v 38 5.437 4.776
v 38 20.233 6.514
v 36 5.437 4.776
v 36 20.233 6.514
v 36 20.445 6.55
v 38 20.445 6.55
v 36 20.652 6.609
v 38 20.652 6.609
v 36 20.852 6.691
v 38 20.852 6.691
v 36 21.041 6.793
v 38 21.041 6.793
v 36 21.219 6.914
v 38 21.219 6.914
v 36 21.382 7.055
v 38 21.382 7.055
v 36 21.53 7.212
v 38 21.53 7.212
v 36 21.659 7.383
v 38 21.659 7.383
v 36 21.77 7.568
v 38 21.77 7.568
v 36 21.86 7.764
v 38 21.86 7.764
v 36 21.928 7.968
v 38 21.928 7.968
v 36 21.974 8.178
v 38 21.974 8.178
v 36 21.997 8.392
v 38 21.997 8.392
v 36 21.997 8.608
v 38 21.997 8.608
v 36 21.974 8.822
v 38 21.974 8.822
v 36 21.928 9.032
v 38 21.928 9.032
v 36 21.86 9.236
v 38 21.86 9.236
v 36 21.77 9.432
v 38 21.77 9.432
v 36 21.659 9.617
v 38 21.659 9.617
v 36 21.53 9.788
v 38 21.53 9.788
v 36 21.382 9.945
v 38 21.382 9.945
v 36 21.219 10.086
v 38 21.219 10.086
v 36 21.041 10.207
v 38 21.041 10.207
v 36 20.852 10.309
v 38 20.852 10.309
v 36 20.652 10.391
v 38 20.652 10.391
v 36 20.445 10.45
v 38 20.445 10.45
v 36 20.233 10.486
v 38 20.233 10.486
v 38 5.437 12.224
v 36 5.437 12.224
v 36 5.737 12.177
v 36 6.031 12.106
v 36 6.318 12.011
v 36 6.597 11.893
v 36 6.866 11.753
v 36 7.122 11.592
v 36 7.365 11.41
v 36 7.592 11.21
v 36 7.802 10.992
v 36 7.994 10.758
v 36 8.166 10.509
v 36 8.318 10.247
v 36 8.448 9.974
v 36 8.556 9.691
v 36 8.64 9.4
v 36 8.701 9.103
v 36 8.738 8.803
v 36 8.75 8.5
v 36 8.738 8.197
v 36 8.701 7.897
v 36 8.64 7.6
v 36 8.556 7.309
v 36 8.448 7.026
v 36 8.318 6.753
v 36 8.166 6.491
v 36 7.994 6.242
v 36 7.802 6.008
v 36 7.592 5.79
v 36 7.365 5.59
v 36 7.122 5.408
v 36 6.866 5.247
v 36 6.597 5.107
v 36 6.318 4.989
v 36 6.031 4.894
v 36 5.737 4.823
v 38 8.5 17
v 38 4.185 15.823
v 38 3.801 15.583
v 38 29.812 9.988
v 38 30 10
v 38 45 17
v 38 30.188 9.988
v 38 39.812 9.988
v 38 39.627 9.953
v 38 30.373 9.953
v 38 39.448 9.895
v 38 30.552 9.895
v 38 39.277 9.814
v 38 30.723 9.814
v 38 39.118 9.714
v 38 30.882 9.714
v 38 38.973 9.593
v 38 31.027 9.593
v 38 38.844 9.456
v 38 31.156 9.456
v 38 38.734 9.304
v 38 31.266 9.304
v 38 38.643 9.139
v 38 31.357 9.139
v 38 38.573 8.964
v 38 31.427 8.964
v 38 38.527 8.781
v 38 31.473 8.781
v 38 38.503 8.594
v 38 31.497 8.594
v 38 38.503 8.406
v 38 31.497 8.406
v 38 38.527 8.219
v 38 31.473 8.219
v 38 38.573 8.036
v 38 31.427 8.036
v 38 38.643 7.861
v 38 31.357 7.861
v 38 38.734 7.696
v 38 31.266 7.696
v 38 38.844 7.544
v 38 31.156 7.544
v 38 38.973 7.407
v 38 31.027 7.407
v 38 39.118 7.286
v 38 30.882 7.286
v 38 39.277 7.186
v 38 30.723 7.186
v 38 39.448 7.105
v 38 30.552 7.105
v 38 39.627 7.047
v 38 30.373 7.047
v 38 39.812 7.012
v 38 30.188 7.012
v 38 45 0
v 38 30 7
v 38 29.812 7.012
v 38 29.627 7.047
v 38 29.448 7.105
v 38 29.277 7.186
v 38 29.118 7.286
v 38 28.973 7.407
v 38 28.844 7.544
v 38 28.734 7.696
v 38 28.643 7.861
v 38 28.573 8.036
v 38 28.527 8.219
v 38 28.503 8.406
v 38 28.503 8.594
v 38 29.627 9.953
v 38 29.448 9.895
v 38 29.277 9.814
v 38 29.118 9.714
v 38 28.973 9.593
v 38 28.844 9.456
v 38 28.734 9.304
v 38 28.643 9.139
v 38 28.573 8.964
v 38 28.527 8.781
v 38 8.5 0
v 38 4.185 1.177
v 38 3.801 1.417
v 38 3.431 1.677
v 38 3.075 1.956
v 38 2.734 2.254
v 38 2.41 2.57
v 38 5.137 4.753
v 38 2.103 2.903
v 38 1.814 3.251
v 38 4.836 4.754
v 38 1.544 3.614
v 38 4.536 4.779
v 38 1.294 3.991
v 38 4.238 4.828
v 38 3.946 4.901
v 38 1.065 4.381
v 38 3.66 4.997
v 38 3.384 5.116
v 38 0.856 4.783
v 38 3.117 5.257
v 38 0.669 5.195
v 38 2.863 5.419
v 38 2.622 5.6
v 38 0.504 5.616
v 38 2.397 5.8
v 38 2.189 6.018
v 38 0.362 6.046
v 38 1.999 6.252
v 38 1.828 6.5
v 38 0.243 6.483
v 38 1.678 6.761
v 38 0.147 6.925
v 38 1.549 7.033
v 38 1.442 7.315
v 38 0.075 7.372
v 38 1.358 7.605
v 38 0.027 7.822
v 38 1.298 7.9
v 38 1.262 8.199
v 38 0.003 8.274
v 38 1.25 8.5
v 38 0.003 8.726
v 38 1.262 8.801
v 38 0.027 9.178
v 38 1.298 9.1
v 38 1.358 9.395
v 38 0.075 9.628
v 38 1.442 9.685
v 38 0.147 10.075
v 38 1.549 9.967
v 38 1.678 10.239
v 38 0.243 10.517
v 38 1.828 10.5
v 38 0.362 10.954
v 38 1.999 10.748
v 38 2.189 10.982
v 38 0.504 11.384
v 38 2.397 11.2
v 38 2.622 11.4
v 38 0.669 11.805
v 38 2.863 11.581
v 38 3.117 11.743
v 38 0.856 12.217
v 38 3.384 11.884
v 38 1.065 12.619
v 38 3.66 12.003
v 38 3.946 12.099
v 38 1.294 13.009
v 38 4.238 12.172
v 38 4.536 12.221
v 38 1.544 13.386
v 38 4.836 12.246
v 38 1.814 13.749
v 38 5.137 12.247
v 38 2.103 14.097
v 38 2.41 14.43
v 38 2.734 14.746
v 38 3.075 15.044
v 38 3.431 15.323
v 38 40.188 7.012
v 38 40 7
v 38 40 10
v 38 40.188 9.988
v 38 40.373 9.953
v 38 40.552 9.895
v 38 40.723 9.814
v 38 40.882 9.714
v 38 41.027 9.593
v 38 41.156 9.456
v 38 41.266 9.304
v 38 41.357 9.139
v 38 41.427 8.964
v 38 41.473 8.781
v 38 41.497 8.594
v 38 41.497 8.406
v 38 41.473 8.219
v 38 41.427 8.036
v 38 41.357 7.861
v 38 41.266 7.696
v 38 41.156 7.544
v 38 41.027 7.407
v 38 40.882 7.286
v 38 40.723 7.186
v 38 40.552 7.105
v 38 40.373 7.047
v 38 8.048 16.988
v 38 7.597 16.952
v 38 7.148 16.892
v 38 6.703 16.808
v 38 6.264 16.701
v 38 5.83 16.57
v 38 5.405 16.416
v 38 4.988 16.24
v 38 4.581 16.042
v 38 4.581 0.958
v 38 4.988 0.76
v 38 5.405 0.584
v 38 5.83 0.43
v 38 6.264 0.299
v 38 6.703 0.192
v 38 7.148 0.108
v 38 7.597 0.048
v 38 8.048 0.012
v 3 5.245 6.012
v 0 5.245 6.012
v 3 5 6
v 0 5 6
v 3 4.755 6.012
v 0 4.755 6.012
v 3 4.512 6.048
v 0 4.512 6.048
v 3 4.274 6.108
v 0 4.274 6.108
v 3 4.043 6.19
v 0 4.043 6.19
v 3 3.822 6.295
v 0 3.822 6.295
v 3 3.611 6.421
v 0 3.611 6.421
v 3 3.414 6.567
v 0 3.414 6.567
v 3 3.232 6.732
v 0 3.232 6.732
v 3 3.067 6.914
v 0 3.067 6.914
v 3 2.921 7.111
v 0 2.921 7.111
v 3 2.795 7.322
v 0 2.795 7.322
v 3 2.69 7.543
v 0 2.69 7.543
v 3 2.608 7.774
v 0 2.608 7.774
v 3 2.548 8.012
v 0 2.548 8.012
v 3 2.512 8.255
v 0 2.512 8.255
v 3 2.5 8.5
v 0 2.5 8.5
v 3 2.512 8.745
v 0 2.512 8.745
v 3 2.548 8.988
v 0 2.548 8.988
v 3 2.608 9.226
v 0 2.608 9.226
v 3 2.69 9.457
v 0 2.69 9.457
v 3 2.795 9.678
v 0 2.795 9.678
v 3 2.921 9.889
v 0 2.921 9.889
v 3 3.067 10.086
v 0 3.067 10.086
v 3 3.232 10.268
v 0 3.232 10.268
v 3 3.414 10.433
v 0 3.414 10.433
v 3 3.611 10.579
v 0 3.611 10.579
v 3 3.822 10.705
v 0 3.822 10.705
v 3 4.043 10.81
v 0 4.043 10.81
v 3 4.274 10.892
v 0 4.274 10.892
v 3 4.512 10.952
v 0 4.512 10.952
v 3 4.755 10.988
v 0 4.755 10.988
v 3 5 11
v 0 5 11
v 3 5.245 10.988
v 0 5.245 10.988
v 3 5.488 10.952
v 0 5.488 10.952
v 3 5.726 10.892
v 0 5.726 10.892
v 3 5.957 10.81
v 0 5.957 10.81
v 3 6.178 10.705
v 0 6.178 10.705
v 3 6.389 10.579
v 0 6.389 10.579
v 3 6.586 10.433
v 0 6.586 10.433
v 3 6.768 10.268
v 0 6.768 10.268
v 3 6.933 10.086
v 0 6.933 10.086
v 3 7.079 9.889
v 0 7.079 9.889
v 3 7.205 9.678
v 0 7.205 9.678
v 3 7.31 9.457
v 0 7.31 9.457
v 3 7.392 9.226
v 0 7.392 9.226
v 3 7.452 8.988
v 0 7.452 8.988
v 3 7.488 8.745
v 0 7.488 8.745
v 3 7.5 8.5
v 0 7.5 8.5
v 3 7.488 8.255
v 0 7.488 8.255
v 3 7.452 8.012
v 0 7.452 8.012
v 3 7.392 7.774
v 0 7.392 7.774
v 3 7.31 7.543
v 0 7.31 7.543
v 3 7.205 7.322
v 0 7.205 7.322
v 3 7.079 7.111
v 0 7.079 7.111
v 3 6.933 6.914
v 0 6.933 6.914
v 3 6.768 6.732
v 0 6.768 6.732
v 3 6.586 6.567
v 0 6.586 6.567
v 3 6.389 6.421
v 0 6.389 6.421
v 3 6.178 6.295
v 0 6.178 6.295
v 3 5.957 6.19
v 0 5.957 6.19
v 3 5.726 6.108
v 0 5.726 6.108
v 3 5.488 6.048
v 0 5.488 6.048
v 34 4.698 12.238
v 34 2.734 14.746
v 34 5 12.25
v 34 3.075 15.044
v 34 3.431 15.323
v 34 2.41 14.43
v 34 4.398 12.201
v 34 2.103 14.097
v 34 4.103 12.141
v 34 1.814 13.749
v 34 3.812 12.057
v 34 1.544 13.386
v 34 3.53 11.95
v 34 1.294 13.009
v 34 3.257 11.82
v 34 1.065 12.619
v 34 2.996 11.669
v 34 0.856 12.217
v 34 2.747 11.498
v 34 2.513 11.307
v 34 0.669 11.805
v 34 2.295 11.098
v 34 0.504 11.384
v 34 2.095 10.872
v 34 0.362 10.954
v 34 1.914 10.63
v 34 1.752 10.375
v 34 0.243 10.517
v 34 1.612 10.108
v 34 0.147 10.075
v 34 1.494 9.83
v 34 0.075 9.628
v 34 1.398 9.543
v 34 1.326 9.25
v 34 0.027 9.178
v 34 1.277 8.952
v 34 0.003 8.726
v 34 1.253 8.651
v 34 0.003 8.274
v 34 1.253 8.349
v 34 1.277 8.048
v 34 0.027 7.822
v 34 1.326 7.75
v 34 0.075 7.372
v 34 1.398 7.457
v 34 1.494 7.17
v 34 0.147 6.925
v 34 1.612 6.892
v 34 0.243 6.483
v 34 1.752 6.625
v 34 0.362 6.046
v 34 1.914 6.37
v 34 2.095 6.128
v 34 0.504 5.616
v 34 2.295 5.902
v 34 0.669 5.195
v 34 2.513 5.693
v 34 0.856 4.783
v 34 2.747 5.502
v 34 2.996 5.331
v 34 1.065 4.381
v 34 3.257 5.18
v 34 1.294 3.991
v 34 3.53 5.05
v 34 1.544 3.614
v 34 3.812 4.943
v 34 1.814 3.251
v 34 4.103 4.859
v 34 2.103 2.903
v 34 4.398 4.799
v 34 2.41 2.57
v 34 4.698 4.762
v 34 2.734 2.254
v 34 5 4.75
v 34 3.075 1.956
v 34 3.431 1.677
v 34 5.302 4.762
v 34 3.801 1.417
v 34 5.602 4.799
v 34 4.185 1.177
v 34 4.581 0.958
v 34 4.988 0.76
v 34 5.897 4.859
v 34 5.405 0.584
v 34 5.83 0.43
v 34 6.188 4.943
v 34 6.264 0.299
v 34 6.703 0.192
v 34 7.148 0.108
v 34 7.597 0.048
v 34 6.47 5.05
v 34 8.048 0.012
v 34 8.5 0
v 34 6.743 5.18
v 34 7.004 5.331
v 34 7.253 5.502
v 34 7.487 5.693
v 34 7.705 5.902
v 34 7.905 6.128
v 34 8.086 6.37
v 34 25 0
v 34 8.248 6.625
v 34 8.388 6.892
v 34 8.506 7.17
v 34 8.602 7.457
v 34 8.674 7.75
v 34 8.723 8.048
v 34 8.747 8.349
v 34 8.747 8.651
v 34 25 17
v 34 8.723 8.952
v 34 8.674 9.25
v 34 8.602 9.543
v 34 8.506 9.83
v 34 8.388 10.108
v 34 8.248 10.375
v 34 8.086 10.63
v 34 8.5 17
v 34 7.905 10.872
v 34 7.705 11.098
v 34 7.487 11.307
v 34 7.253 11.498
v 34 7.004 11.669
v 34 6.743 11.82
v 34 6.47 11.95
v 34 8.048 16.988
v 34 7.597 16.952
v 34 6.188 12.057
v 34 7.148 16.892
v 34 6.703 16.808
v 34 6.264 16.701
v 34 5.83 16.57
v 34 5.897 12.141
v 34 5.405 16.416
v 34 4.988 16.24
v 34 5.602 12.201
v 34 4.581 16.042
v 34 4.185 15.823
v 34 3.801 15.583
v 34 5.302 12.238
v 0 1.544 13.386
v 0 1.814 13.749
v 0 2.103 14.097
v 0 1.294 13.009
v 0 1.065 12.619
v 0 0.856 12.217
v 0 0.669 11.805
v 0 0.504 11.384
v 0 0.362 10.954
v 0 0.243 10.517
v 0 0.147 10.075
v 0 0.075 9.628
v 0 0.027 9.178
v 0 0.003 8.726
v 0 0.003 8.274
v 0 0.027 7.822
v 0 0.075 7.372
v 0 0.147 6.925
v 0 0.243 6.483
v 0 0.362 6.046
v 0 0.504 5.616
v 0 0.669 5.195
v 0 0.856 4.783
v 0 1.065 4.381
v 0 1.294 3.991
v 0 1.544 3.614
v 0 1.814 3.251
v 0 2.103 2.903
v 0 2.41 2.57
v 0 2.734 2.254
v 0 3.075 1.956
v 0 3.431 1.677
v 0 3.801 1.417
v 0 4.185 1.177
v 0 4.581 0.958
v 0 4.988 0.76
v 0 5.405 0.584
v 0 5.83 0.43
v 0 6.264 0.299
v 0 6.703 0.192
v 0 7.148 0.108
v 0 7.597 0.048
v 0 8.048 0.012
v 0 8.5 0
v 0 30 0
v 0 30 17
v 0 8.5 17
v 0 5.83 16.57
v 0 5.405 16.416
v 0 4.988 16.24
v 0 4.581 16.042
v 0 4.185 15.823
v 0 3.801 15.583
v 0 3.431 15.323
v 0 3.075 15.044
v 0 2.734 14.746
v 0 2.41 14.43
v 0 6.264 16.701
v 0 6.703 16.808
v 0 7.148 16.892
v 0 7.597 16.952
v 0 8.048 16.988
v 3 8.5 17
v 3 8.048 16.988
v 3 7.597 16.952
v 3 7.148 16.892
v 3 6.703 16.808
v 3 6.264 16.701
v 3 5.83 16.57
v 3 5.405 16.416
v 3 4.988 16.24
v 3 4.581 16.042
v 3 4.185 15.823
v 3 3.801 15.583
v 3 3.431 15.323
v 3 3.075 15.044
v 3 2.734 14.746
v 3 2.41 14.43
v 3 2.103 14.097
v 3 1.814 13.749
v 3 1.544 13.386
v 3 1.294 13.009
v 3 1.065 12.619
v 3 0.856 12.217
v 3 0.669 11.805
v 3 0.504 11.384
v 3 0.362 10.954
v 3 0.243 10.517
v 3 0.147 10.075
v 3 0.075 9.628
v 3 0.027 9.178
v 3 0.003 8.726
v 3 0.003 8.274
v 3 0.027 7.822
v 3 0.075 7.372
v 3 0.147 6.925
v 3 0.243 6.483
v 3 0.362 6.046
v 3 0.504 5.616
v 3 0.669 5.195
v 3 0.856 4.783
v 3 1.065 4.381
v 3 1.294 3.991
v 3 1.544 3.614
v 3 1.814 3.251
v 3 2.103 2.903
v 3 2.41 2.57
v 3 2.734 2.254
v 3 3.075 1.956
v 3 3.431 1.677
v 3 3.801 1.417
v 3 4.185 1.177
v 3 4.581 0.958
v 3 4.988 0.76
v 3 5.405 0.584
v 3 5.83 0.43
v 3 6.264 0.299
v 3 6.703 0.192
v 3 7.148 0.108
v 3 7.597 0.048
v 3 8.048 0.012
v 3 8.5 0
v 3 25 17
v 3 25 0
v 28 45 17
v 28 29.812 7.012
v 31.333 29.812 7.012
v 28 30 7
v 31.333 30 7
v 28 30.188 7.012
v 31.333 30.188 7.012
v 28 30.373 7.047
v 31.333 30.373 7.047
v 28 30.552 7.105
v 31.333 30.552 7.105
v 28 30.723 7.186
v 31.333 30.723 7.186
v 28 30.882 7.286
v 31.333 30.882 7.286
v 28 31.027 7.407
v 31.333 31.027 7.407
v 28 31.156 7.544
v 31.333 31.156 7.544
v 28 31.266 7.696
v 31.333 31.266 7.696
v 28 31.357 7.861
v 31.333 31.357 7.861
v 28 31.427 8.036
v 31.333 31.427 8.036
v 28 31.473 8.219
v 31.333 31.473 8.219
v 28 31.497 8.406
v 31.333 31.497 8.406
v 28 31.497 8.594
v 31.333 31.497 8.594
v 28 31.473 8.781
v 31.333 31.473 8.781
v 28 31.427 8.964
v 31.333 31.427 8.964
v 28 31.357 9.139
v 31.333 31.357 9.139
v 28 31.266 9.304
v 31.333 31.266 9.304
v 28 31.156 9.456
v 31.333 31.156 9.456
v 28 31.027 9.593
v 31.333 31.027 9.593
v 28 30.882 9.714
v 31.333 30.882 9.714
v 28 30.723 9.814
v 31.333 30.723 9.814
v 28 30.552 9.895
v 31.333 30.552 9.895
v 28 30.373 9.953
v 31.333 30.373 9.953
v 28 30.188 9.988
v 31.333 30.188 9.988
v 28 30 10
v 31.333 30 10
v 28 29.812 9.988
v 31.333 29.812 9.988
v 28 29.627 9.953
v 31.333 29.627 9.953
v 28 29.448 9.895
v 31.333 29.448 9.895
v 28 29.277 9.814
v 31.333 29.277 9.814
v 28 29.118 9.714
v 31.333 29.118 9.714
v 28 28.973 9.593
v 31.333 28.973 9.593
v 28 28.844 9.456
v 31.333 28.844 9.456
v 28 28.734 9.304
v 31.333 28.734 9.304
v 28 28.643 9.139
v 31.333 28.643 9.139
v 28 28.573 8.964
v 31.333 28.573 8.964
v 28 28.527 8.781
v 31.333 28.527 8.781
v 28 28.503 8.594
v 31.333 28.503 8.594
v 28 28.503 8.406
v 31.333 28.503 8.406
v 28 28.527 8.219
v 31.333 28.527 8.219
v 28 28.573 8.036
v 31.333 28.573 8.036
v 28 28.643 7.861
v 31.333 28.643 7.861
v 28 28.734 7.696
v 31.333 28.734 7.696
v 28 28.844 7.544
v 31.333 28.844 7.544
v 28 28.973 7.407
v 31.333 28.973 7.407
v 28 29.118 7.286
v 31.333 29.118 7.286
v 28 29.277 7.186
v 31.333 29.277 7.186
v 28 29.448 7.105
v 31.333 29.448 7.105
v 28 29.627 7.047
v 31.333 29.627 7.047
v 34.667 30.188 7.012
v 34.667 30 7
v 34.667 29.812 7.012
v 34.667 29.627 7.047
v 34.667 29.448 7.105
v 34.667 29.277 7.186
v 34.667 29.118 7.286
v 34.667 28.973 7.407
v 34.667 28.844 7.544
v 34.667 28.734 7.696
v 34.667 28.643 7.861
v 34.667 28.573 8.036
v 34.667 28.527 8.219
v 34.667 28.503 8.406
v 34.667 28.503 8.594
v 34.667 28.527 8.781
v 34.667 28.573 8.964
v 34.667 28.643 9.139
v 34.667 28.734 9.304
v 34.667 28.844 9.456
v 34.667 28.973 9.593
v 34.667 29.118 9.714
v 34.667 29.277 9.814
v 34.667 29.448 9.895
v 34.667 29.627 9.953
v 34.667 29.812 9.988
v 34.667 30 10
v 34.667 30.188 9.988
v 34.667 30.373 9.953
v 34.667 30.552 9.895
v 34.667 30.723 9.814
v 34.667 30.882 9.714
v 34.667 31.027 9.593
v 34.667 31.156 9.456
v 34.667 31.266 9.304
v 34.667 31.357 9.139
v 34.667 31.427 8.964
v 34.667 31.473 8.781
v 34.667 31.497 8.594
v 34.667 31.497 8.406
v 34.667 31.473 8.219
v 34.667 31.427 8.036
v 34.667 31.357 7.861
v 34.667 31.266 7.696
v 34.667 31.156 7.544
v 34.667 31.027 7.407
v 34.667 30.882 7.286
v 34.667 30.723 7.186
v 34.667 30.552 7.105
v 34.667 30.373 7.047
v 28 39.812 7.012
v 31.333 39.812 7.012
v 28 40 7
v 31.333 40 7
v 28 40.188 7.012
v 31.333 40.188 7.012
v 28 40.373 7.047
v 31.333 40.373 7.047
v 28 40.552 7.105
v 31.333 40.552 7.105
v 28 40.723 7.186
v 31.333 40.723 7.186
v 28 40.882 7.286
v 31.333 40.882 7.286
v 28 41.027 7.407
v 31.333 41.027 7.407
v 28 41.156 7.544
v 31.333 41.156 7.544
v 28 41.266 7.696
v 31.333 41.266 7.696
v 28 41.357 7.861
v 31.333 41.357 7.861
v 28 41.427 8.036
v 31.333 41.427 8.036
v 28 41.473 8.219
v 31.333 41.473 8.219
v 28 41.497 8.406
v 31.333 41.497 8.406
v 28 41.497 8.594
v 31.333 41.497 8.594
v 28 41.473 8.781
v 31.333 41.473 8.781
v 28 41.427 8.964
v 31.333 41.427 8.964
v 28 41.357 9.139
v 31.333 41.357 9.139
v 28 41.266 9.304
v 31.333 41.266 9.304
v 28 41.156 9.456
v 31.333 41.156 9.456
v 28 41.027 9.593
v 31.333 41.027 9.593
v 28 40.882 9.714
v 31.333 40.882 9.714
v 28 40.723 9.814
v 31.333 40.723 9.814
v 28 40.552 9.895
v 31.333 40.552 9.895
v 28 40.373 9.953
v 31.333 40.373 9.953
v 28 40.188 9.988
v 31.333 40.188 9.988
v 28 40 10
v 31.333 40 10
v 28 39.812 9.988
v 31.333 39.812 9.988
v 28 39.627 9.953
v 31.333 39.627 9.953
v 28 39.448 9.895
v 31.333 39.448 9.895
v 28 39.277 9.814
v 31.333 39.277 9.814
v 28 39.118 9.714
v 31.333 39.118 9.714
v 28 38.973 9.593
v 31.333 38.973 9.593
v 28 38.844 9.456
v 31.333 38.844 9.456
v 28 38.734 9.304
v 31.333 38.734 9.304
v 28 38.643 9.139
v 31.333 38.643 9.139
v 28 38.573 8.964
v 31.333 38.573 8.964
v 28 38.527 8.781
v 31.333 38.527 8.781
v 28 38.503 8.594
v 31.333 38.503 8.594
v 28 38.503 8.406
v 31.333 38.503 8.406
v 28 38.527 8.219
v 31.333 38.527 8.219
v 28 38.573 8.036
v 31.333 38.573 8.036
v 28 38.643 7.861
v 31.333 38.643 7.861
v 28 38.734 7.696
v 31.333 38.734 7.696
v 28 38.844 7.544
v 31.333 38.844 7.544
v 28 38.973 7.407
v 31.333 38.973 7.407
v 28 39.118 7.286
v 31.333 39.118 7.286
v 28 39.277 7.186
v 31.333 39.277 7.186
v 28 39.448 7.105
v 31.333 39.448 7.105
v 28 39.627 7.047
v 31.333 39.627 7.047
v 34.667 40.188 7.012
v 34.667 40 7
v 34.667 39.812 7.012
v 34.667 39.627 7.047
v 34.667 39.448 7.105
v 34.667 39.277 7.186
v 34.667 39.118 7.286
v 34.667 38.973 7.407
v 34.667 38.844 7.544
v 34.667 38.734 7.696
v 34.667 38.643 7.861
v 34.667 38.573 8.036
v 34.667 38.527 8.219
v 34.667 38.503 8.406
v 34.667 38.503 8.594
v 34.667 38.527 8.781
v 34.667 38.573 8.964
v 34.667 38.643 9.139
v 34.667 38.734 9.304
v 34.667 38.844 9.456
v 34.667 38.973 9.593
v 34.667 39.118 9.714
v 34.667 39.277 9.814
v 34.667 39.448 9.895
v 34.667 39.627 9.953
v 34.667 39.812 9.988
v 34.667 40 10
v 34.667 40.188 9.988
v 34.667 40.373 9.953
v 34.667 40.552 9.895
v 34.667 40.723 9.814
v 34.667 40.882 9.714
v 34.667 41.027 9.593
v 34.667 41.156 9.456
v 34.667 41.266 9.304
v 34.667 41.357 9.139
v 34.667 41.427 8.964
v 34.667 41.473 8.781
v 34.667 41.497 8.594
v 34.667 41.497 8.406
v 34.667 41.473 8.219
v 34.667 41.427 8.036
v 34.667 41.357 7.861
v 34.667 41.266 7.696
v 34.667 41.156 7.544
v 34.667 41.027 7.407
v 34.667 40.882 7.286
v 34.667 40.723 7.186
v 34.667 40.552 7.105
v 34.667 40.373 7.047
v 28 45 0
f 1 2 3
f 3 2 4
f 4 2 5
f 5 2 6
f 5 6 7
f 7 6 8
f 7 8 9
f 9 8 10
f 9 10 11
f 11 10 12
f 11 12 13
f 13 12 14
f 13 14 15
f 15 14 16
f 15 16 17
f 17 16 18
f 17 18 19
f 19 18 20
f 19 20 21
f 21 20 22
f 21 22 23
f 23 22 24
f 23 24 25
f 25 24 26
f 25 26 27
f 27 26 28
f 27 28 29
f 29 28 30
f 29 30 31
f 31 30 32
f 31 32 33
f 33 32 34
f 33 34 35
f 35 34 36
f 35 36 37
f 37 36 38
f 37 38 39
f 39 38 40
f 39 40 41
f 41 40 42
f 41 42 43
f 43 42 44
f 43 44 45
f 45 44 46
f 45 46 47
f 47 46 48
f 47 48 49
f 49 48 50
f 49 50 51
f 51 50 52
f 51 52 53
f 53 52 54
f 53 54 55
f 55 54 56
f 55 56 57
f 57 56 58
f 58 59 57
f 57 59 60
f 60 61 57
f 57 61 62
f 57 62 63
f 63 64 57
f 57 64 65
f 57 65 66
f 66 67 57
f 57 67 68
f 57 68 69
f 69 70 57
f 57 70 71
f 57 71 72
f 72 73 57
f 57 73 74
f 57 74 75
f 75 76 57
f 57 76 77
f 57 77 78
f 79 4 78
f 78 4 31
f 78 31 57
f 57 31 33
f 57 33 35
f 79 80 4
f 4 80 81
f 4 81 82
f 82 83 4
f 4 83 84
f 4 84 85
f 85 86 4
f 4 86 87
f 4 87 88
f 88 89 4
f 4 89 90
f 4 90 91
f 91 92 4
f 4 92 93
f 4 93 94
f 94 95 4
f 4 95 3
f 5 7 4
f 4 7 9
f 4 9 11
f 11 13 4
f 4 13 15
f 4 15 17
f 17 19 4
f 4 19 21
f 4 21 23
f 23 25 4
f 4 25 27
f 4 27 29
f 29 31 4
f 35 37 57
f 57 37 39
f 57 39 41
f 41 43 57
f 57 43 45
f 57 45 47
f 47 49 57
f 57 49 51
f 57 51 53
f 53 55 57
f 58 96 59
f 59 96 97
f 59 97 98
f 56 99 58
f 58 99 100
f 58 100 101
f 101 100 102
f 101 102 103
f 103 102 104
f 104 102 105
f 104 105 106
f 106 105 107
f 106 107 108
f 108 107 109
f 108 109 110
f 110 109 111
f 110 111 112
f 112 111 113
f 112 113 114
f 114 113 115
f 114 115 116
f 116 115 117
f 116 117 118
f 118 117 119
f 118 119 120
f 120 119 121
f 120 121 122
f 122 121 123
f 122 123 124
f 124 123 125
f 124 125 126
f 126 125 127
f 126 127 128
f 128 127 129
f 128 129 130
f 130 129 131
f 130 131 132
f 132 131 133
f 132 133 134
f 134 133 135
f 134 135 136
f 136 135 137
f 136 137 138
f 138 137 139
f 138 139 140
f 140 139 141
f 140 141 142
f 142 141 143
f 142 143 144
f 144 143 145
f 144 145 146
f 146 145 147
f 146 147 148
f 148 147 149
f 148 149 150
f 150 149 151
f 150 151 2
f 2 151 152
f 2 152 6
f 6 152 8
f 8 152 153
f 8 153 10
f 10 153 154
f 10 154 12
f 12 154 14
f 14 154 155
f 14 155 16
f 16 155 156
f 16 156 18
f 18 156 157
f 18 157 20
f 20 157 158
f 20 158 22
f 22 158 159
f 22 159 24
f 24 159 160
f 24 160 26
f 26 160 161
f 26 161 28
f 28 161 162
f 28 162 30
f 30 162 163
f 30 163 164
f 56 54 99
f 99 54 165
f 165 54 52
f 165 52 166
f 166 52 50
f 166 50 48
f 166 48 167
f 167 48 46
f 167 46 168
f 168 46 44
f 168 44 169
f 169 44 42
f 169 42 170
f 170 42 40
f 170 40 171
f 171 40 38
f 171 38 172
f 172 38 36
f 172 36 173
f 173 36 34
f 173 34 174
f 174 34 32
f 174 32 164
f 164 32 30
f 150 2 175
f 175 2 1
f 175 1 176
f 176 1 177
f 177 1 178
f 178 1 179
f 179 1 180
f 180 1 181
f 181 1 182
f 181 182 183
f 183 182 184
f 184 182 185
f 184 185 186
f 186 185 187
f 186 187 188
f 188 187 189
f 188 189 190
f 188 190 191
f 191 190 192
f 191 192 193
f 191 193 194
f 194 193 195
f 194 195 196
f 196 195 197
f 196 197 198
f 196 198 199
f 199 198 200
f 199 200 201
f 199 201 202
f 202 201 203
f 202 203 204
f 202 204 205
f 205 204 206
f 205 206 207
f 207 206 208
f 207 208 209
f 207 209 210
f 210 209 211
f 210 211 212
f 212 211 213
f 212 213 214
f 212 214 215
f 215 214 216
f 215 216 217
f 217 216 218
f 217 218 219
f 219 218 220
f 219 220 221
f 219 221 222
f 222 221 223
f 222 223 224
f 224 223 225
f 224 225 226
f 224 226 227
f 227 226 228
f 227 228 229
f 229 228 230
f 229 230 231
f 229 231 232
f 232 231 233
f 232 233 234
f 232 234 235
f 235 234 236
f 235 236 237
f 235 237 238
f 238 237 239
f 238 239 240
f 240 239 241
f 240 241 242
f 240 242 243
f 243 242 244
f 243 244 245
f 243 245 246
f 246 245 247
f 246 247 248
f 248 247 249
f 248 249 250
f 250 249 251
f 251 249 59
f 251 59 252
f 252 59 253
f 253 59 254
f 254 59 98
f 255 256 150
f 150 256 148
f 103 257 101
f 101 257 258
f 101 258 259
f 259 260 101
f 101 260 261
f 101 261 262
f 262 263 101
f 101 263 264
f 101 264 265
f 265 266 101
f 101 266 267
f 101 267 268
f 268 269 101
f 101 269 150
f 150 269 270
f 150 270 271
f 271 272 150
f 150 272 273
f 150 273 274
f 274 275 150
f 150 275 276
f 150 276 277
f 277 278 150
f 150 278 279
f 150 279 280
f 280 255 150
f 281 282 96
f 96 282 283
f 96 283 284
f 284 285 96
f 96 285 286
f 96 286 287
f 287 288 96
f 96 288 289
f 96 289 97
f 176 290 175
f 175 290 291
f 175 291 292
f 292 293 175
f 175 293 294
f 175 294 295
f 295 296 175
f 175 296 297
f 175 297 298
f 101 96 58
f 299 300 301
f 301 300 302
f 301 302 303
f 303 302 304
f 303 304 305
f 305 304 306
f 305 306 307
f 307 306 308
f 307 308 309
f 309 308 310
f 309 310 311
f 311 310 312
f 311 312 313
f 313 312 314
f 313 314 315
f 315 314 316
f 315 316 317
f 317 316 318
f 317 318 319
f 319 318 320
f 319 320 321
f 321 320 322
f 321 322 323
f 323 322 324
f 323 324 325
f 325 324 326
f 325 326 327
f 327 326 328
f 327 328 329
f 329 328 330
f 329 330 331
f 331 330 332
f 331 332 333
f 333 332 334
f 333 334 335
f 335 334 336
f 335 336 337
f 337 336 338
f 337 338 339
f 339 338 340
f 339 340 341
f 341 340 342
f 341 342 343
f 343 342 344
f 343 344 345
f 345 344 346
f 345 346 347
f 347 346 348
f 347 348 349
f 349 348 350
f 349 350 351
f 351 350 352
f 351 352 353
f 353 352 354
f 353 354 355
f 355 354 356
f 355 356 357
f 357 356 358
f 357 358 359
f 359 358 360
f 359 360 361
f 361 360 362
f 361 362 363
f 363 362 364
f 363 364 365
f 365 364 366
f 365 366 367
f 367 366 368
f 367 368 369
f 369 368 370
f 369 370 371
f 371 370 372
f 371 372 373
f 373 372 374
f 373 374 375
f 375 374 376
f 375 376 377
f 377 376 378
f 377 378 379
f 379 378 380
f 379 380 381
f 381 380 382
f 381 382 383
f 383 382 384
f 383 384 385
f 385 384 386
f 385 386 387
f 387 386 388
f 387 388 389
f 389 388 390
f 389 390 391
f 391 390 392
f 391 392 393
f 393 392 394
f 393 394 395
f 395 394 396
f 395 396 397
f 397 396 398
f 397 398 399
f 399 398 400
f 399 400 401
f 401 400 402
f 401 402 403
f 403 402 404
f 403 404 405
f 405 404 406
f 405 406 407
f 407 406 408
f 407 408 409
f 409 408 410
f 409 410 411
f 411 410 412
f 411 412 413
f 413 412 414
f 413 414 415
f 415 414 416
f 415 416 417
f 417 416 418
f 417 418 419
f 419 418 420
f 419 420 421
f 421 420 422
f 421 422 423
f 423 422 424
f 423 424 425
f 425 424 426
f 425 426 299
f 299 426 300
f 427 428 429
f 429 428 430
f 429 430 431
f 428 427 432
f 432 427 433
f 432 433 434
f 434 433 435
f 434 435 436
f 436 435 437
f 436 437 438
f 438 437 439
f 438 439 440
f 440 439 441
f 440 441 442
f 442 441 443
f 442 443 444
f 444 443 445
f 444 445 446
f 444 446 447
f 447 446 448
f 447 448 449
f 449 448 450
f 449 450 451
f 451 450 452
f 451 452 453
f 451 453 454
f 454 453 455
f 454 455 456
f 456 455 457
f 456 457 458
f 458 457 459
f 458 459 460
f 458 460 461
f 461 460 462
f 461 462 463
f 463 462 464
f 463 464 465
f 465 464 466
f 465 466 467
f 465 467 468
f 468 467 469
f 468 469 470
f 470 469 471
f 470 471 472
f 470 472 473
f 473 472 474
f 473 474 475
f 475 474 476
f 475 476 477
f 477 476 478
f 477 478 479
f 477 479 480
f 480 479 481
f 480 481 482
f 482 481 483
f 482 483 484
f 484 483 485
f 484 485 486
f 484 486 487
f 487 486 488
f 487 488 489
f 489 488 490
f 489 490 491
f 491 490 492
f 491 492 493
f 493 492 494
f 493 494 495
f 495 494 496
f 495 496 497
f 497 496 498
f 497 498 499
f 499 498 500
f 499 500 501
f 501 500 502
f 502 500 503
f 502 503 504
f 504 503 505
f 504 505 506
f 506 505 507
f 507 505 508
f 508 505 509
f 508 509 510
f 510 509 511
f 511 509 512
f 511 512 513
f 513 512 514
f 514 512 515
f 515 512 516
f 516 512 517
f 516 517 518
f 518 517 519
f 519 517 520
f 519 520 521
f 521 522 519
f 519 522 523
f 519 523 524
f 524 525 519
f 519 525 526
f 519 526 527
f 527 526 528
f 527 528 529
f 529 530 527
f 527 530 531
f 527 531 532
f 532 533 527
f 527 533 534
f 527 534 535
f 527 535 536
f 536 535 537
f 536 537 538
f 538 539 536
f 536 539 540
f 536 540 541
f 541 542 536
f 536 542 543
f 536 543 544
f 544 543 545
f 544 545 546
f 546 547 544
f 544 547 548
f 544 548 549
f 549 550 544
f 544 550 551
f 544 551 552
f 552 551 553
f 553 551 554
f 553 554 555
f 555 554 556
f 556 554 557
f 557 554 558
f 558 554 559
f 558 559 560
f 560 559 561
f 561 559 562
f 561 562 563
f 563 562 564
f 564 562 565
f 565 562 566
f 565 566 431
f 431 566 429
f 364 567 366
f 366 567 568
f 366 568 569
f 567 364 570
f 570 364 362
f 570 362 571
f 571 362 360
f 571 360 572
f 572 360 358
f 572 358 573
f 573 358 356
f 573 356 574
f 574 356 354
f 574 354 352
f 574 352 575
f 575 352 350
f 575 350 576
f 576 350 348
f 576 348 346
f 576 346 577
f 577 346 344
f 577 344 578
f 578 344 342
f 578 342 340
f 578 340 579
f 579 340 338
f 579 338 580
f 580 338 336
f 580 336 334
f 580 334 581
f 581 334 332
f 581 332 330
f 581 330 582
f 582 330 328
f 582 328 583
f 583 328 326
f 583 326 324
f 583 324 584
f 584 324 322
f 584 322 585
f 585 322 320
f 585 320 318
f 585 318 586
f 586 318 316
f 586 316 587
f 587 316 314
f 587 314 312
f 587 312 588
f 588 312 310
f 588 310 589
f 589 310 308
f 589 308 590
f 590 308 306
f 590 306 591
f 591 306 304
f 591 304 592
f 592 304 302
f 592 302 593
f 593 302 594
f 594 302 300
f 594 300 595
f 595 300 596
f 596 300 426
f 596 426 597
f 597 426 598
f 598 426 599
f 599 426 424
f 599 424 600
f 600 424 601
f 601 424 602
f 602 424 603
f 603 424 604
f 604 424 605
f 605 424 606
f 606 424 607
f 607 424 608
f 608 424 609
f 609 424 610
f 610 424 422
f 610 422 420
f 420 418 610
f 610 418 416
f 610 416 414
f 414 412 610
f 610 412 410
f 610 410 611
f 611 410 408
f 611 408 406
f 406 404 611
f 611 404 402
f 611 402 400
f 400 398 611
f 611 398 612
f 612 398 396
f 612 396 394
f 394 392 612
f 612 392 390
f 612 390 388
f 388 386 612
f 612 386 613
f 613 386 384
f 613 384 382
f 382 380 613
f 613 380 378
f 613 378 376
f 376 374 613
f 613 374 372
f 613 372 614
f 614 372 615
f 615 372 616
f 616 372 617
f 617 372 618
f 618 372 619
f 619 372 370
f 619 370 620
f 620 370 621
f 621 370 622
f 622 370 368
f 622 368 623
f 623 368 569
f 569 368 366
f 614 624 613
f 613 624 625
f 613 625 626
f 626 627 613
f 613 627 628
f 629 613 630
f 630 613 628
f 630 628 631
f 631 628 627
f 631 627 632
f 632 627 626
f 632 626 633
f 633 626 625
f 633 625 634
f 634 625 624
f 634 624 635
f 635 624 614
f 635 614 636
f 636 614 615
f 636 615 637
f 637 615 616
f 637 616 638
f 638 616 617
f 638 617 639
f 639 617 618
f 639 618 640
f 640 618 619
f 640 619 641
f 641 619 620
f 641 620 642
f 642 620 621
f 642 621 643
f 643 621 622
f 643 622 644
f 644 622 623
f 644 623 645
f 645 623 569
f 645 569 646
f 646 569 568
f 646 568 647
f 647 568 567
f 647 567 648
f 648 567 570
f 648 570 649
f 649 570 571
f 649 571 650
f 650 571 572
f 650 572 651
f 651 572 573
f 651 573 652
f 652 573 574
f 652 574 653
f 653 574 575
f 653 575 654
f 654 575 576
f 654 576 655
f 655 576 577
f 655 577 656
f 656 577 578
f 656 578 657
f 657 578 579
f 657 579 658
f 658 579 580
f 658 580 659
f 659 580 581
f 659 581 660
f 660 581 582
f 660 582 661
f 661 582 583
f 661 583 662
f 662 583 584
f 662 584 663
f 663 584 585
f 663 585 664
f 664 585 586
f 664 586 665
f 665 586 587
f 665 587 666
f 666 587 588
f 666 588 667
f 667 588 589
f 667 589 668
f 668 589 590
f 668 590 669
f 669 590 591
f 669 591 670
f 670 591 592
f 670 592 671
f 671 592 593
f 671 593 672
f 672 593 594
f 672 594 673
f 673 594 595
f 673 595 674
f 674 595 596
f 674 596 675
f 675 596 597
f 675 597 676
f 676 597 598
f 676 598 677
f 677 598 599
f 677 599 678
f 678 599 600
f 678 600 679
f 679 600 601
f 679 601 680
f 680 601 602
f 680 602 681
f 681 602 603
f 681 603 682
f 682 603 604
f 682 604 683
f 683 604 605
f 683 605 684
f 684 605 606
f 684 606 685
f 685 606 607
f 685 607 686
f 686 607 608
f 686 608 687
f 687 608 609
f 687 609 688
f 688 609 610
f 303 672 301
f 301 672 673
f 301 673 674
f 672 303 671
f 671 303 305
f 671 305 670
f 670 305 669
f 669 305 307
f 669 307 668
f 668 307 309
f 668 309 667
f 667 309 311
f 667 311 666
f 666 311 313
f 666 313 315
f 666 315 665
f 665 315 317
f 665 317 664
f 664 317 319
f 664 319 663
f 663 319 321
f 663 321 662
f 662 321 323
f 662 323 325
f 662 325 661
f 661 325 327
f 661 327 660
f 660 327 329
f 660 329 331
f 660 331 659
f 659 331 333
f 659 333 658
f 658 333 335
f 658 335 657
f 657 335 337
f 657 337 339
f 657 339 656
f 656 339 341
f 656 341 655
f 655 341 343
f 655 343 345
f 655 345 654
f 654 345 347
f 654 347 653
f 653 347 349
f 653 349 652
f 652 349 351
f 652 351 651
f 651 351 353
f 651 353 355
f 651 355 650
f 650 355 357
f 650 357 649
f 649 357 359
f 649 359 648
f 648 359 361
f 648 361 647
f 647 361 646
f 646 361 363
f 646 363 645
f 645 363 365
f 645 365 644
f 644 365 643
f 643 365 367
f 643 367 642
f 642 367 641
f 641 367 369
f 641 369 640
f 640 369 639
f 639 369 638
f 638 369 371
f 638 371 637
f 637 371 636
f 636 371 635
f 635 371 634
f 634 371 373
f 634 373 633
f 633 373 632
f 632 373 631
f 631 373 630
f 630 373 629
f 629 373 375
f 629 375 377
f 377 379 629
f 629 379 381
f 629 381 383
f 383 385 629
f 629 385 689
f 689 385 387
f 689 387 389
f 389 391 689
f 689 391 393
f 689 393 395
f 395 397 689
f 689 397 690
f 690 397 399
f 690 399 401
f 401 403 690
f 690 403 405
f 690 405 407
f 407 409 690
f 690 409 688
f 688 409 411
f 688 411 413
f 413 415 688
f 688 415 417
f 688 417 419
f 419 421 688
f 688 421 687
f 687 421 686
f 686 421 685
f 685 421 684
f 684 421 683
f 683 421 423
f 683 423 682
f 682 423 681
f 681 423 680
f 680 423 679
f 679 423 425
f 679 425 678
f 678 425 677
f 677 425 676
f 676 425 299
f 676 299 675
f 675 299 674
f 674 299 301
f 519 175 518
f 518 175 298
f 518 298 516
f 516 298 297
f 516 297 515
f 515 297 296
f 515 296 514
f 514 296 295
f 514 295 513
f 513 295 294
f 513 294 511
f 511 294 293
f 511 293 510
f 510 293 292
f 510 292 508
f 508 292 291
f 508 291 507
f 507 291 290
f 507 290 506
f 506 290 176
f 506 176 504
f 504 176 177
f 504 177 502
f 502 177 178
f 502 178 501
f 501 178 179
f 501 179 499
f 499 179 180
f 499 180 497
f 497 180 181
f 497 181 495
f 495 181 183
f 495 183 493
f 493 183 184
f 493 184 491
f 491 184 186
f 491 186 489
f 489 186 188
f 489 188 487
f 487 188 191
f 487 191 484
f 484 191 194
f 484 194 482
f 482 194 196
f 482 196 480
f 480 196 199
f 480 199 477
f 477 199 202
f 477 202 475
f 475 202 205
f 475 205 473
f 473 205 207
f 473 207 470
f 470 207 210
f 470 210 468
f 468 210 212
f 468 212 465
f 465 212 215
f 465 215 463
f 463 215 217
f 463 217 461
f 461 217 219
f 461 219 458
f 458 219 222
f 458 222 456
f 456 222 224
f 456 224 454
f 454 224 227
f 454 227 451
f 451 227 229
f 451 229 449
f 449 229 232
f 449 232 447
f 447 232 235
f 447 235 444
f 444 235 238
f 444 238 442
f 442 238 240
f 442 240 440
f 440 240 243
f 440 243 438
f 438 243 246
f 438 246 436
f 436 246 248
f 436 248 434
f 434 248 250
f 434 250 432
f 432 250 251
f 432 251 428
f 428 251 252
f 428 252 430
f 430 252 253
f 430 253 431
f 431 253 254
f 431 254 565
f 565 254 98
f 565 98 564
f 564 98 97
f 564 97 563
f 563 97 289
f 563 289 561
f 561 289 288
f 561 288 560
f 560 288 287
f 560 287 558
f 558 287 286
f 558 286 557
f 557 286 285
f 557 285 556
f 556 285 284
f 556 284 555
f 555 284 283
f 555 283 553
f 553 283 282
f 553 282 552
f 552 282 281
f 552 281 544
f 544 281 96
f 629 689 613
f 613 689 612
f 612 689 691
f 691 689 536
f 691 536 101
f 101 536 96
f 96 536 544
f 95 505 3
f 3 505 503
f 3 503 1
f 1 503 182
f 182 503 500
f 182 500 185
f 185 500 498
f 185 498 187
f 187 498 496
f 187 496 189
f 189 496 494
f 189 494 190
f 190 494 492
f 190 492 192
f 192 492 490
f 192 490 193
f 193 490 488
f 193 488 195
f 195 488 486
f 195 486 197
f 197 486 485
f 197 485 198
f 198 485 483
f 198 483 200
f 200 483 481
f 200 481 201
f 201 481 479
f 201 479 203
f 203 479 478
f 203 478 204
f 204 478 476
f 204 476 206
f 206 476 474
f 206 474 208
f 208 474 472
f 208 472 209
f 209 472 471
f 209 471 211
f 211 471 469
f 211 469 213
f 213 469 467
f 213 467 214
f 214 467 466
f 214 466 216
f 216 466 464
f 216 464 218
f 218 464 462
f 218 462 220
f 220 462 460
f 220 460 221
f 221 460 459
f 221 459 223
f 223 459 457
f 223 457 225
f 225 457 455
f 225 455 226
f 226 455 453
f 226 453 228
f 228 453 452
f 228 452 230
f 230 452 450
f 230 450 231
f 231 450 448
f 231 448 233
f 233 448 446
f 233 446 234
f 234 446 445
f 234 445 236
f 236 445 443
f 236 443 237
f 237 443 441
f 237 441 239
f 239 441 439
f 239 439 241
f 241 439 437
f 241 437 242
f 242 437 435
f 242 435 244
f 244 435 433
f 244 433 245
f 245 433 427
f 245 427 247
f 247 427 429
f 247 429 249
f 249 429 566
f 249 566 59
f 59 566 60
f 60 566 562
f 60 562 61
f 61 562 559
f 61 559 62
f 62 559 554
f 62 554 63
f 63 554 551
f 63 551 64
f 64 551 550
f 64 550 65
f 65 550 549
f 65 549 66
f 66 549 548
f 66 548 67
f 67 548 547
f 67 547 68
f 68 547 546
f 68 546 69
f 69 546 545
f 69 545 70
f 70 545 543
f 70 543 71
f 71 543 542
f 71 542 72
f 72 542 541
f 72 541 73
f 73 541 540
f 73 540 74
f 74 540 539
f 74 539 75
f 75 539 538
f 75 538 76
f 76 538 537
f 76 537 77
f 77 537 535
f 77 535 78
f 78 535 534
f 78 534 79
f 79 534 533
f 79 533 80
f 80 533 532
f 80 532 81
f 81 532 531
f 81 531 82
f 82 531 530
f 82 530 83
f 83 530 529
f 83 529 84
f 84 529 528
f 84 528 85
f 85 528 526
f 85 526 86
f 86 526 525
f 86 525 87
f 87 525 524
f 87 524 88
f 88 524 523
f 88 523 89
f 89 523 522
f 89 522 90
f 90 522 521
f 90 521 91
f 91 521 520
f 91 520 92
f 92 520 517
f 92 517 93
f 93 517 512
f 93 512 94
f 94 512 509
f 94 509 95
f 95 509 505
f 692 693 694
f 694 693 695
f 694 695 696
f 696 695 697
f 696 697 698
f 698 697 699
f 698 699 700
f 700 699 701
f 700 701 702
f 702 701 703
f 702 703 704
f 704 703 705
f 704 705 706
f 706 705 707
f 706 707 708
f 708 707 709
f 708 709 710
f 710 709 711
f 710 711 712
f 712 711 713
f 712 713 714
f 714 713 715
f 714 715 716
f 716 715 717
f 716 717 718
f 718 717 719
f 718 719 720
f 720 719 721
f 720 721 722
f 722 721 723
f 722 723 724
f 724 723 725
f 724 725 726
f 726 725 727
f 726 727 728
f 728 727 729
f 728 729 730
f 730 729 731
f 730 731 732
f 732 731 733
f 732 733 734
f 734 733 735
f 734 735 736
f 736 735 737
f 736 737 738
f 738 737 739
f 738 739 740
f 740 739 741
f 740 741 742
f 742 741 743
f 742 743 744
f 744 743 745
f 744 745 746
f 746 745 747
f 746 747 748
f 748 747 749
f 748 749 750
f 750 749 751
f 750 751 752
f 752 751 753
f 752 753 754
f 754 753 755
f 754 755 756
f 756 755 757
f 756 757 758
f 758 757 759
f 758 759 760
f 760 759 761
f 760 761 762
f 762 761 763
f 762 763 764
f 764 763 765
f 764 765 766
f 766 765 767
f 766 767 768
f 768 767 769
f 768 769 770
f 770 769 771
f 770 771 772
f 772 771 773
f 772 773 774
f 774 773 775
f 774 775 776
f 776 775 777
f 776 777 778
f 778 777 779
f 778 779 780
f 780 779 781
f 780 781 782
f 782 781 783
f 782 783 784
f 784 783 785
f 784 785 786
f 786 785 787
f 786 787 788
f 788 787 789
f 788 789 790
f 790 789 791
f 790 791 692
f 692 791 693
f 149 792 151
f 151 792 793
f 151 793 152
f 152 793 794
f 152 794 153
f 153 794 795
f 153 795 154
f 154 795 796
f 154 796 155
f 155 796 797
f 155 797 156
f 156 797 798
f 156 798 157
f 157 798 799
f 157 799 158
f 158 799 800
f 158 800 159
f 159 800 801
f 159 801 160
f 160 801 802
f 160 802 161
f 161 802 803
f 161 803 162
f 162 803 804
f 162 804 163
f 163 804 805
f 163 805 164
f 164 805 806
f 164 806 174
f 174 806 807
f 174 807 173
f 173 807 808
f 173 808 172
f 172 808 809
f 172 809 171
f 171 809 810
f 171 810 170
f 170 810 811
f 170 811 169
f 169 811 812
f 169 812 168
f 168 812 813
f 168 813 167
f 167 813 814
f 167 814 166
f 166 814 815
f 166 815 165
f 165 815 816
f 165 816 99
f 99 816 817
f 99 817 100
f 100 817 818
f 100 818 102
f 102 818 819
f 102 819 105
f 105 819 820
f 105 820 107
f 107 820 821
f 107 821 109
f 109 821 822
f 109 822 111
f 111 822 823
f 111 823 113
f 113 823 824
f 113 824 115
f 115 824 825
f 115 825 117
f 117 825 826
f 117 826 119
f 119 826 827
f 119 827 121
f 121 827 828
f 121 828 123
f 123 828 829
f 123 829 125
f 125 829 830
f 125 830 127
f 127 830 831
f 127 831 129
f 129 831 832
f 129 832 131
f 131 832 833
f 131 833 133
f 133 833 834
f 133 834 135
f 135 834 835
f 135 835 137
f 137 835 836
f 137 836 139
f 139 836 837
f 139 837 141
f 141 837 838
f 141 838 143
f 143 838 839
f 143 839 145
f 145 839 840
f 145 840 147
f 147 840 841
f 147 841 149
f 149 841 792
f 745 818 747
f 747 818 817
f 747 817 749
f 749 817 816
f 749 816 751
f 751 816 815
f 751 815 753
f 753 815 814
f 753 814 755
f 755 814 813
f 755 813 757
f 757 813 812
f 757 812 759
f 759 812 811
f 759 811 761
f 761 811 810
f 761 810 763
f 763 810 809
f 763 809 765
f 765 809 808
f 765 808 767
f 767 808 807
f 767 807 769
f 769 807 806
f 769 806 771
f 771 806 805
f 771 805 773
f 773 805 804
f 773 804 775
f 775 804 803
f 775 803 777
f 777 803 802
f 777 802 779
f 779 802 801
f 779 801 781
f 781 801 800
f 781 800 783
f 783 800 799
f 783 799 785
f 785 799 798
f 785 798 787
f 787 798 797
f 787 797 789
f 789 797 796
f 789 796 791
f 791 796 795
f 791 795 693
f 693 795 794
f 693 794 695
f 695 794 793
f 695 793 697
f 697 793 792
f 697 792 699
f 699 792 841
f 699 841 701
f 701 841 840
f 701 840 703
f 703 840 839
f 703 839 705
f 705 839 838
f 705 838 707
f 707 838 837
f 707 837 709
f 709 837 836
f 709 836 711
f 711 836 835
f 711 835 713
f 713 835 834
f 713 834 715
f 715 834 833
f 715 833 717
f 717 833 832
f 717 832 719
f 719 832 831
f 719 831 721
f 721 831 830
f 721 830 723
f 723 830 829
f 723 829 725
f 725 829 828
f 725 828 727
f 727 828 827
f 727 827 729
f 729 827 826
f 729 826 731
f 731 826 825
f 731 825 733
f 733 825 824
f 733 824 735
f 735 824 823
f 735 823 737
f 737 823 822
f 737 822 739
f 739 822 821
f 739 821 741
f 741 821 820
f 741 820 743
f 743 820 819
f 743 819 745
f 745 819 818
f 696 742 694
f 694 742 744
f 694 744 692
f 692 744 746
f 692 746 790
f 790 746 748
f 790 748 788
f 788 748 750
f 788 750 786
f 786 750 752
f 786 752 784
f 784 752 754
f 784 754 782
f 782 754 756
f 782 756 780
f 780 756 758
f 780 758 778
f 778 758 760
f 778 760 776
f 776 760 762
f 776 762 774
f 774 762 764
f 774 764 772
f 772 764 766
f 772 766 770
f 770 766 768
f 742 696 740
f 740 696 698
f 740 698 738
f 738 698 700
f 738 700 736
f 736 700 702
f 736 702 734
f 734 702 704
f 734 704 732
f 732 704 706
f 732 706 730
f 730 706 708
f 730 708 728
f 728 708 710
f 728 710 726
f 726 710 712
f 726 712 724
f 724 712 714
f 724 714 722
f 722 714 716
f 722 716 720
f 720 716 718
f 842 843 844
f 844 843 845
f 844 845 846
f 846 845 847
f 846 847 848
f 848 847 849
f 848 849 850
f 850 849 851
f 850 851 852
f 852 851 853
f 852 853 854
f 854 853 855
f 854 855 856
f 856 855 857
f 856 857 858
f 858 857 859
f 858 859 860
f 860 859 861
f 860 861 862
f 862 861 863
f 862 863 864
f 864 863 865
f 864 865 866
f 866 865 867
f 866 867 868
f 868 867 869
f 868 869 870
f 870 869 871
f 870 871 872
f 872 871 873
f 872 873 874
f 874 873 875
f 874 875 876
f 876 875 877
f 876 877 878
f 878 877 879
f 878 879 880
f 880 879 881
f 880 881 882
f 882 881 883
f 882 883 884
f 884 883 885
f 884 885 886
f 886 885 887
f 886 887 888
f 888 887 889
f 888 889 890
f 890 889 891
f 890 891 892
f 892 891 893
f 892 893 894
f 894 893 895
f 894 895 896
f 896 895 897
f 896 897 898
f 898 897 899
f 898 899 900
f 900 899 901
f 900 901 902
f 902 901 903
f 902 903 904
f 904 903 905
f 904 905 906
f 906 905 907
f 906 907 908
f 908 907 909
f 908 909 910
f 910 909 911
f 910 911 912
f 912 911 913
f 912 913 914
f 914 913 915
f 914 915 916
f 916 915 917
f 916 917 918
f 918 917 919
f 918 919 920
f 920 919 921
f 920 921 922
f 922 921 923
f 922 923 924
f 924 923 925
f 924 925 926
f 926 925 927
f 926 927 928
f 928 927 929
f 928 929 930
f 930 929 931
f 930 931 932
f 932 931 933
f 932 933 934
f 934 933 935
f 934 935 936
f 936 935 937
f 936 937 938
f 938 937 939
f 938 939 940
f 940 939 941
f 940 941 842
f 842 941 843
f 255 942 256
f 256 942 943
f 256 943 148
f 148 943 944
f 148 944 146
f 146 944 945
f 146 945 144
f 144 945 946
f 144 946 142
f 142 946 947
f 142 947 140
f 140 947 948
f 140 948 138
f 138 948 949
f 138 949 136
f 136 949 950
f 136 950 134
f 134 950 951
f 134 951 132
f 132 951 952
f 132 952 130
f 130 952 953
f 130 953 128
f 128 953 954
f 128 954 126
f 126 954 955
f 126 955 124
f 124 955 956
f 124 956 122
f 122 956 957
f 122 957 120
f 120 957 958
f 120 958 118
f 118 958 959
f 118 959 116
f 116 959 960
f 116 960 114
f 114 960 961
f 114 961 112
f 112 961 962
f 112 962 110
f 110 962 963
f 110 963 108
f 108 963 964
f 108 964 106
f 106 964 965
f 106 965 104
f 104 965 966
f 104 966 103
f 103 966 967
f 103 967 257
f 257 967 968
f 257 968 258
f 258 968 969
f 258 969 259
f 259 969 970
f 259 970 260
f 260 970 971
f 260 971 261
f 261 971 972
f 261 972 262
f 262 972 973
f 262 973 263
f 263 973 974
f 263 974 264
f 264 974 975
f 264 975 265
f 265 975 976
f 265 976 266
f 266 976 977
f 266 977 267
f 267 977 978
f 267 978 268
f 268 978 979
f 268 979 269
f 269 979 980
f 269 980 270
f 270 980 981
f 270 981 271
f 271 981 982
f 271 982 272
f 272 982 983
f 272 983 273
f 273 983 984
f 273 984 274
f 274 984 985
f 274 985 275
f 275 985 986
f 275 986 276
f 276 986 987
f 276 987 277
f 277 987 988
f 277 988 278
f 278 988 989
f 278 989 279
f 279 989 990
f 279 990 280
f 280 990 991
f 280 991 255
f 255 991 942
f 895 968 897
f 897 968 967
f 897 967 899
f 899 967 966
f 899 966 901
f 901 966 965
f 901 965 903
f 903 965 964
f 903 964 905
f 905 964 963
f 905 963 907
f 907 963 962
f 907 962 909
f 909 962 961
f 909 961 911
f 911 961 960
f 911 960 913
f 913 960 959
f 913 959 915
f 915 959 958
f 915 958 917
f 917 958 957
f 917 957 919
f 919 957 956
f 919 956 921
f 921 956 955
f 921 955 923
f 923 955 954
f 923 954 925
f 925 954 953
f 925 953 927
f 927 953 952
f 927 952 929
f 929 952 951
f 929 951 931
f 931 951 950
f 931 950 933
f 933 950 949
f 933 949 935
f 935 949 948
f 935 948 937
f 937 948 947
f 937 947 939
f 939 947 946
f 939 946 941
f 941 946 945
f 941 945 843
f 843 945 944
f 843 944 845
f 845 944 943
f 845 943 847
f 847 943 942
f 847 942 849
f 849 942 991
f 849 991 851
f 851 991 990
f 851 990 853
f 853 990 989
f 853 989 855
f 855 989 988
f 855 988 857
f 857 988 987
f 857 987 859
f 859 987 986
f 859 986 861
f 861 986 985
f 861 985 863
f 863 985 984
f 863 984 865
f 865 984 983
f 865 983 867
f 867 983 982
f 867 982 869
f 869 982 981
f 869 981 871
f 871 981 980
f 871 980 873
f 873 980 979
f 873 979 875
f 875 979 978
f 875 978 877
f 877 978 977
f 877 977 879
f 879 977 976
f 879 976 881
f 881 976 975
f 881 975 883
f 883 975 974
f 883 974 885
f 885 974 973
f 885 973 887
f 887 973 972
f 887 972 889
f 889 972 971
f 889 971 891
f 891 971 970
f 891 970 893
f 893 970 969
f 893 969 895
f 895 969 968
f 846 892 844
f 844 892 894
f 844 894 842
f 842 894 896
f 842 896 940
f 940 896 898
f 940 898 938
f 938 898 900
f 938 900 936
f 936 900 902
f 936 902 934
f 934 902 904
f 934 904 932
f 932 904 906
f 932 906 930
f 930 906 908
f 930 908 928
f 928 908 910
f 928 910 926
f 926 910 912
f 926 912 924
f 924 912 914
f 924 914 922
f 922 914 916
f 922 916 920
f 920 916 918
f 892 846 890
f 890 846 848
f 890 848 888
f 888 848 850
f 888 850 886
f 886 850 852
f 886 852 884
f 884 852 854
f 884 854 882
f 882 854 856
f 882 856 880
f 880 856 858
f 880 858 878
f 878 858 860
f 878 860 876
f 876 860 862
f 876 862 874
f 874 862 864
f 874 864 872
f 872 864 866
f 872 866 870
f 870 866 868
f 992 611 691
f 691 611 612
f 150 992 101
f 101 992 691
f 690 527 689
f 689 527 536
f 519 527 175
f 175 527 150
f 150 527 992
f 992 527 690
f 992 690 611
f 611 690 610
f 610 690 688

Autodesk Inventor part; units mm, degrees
ref_plane "YZ Plane" through (0, 0, 0) normal (1, 0, 0) x (0, 1, 0)
ref_plane "XZ Plane" through (0, 0, 0) normal (0, 1, 0) x (-1, 0, 0)
ref_plane "XY Plane" through (0, 0, 0) normal (0, 0, 1) x (1, 0, 0)
sketch "Sketch1" plane through (0, 0, 0) normal (0, 0, 1) x (1, 0, 0)
  line L0 (0, 0) -> (3, 0)
  line L1 (3, 0) -> (3, 25)
  line L2 (3, 25) -> (0, 25)
  line L3 (0, 25) -> (0, 0)
  line L4 (34, 25) -> (38, 25)
  line L5 (38, 25) -> (38, 0)
  line L6 (38, 0) -> (34, 0)
  line L7 (34, 0) -> (34, 25)
  line L8 (0, 25) -> (38, 25)
  line L9 (38, 25) -> (38, 45)
  line L10 (38, 45) -> (0, 45)
  line L11 (0, 45) -> (0, 25)
  line L12 (0, 25) -> (0, 30)
  line L13 (0, 30) -> (28, 45)
  line L14 (28, 45) -> (38, 45)
  point P0 (34, 25)
  dimension "d0" = 3
  dimension "d1" = 25
  dimension "d2" = 4
  dimension "d3" = 25
  dimension "d4" = 31
  dimension "d5" = 38
  dimension "d6" = 20
  dimension "d7" = 5
  dimension "d10" = 10
extrude "Extrusion1" add sketch "Sketch1" along normal blind 17 contours L3 L2 L1 L0 | L11 L13 L10 L9 L4 L8 L2 | L4 L5 L6 L7
sketch "Sketch2" plane through (38, 0, 0) normal (1, 0, 0) x (0, 0, -1)
  line L0 (0, 25) -> (-17, 25) projected
  line L1 (0, 0) -> (0, 45) projected
  line L2 (-17, 25) -> (0, 25)
  line L3 (0, 25) -> (0, 45)
  line L4 (0, 45) -> (-17, 45)
  line L5 (-17, 45) -> (-17, 25)
  circle A0 centre (-8.5, 30) radius 1.5
  circle A1 centre (-8.5, 40) radius 1.5
  dimension "d11" = 3
  dimension "d12" = 3
  dimension "d13" = 5
  dimension "d15" = 8.5
  dimension "d16" = 5
  dimension "d19" = 17
  dimension "d20" = 8.5
  dimension "d21" = 20
extrude "Extrusion2" cut sketch "Sketch2" against normal blind 10 contours A0 | A1
sketch "Sketch3" plane through (38, 0, 0) normal (1, 0, 0) x (0, 0, -1)
  circle A0 centre (-8.5, 5) radius 3.75
  line L0 (0, 0) -> (-17, 0) projected
  line L1 (0, 0) -> (0, 45) projected
  point P0 (-8.5, 0)
  dimension "d22" = 7.5
  dimension "d23" = 5
  dimension "d24" = 8.5
extrude "Extrusion3" cut sketch "Sketch3" against normal up to surface (4 mm away)
fillet "Fillet1" radius 8.5 4 edges at (36, 0, 17) (1.5, 0, 17) (1.5, 0, 0) (36, 0, 0)
sketch "Sketch4" plane through (0, 30, 0) normal (-1, 0, 0) x (0, 0, 1)
  circle A0 centre (8.5, -25) radius 2.5
  arc A1 (0, -21.5) -> (17, -21.5) centre (8.5, -21.5) ccw projected
  line L0 (17, 0) -> (17, -21.5) projected
  point P0 (0, -30)
  point P1 (8.5, -30)
  dimension "d28" = 5
  dimension "d29" = 5
  dimension "d30" = 8.5
extrude "Extrusion4" cut sketch "Sketch4" against normal up to surface (3 mm away)
sketch "Sketch5" plane through (38, 45, 17) normal (1, 0, 0) x (0, 0, -1)
  circle A0 centre (8.5, -40) radius 3.75 projected
  circle A1 centre (8.5, -40) radius 3.5
  circle A2 centre (8.5, -25) radius 2
  circle A3 centre (8.5, -40) radius 3.75
  line L0 (10.4863, -24.7667) -> (12.2244, -39.5625)
  line L1 (6.5137, -24.7667) -> (4.7756, -39.5625)
  point P0 (17, -45)
  dimension "d33" = 4
  dimension "d34" = 15
  dimension "d35" = 0
extrude "Extrusion5" cut sketch "Sketch5" against normal blind 2 contours A0 | A0 L1 A2 L0 | A2 | A1
properties part number "juncao6"
